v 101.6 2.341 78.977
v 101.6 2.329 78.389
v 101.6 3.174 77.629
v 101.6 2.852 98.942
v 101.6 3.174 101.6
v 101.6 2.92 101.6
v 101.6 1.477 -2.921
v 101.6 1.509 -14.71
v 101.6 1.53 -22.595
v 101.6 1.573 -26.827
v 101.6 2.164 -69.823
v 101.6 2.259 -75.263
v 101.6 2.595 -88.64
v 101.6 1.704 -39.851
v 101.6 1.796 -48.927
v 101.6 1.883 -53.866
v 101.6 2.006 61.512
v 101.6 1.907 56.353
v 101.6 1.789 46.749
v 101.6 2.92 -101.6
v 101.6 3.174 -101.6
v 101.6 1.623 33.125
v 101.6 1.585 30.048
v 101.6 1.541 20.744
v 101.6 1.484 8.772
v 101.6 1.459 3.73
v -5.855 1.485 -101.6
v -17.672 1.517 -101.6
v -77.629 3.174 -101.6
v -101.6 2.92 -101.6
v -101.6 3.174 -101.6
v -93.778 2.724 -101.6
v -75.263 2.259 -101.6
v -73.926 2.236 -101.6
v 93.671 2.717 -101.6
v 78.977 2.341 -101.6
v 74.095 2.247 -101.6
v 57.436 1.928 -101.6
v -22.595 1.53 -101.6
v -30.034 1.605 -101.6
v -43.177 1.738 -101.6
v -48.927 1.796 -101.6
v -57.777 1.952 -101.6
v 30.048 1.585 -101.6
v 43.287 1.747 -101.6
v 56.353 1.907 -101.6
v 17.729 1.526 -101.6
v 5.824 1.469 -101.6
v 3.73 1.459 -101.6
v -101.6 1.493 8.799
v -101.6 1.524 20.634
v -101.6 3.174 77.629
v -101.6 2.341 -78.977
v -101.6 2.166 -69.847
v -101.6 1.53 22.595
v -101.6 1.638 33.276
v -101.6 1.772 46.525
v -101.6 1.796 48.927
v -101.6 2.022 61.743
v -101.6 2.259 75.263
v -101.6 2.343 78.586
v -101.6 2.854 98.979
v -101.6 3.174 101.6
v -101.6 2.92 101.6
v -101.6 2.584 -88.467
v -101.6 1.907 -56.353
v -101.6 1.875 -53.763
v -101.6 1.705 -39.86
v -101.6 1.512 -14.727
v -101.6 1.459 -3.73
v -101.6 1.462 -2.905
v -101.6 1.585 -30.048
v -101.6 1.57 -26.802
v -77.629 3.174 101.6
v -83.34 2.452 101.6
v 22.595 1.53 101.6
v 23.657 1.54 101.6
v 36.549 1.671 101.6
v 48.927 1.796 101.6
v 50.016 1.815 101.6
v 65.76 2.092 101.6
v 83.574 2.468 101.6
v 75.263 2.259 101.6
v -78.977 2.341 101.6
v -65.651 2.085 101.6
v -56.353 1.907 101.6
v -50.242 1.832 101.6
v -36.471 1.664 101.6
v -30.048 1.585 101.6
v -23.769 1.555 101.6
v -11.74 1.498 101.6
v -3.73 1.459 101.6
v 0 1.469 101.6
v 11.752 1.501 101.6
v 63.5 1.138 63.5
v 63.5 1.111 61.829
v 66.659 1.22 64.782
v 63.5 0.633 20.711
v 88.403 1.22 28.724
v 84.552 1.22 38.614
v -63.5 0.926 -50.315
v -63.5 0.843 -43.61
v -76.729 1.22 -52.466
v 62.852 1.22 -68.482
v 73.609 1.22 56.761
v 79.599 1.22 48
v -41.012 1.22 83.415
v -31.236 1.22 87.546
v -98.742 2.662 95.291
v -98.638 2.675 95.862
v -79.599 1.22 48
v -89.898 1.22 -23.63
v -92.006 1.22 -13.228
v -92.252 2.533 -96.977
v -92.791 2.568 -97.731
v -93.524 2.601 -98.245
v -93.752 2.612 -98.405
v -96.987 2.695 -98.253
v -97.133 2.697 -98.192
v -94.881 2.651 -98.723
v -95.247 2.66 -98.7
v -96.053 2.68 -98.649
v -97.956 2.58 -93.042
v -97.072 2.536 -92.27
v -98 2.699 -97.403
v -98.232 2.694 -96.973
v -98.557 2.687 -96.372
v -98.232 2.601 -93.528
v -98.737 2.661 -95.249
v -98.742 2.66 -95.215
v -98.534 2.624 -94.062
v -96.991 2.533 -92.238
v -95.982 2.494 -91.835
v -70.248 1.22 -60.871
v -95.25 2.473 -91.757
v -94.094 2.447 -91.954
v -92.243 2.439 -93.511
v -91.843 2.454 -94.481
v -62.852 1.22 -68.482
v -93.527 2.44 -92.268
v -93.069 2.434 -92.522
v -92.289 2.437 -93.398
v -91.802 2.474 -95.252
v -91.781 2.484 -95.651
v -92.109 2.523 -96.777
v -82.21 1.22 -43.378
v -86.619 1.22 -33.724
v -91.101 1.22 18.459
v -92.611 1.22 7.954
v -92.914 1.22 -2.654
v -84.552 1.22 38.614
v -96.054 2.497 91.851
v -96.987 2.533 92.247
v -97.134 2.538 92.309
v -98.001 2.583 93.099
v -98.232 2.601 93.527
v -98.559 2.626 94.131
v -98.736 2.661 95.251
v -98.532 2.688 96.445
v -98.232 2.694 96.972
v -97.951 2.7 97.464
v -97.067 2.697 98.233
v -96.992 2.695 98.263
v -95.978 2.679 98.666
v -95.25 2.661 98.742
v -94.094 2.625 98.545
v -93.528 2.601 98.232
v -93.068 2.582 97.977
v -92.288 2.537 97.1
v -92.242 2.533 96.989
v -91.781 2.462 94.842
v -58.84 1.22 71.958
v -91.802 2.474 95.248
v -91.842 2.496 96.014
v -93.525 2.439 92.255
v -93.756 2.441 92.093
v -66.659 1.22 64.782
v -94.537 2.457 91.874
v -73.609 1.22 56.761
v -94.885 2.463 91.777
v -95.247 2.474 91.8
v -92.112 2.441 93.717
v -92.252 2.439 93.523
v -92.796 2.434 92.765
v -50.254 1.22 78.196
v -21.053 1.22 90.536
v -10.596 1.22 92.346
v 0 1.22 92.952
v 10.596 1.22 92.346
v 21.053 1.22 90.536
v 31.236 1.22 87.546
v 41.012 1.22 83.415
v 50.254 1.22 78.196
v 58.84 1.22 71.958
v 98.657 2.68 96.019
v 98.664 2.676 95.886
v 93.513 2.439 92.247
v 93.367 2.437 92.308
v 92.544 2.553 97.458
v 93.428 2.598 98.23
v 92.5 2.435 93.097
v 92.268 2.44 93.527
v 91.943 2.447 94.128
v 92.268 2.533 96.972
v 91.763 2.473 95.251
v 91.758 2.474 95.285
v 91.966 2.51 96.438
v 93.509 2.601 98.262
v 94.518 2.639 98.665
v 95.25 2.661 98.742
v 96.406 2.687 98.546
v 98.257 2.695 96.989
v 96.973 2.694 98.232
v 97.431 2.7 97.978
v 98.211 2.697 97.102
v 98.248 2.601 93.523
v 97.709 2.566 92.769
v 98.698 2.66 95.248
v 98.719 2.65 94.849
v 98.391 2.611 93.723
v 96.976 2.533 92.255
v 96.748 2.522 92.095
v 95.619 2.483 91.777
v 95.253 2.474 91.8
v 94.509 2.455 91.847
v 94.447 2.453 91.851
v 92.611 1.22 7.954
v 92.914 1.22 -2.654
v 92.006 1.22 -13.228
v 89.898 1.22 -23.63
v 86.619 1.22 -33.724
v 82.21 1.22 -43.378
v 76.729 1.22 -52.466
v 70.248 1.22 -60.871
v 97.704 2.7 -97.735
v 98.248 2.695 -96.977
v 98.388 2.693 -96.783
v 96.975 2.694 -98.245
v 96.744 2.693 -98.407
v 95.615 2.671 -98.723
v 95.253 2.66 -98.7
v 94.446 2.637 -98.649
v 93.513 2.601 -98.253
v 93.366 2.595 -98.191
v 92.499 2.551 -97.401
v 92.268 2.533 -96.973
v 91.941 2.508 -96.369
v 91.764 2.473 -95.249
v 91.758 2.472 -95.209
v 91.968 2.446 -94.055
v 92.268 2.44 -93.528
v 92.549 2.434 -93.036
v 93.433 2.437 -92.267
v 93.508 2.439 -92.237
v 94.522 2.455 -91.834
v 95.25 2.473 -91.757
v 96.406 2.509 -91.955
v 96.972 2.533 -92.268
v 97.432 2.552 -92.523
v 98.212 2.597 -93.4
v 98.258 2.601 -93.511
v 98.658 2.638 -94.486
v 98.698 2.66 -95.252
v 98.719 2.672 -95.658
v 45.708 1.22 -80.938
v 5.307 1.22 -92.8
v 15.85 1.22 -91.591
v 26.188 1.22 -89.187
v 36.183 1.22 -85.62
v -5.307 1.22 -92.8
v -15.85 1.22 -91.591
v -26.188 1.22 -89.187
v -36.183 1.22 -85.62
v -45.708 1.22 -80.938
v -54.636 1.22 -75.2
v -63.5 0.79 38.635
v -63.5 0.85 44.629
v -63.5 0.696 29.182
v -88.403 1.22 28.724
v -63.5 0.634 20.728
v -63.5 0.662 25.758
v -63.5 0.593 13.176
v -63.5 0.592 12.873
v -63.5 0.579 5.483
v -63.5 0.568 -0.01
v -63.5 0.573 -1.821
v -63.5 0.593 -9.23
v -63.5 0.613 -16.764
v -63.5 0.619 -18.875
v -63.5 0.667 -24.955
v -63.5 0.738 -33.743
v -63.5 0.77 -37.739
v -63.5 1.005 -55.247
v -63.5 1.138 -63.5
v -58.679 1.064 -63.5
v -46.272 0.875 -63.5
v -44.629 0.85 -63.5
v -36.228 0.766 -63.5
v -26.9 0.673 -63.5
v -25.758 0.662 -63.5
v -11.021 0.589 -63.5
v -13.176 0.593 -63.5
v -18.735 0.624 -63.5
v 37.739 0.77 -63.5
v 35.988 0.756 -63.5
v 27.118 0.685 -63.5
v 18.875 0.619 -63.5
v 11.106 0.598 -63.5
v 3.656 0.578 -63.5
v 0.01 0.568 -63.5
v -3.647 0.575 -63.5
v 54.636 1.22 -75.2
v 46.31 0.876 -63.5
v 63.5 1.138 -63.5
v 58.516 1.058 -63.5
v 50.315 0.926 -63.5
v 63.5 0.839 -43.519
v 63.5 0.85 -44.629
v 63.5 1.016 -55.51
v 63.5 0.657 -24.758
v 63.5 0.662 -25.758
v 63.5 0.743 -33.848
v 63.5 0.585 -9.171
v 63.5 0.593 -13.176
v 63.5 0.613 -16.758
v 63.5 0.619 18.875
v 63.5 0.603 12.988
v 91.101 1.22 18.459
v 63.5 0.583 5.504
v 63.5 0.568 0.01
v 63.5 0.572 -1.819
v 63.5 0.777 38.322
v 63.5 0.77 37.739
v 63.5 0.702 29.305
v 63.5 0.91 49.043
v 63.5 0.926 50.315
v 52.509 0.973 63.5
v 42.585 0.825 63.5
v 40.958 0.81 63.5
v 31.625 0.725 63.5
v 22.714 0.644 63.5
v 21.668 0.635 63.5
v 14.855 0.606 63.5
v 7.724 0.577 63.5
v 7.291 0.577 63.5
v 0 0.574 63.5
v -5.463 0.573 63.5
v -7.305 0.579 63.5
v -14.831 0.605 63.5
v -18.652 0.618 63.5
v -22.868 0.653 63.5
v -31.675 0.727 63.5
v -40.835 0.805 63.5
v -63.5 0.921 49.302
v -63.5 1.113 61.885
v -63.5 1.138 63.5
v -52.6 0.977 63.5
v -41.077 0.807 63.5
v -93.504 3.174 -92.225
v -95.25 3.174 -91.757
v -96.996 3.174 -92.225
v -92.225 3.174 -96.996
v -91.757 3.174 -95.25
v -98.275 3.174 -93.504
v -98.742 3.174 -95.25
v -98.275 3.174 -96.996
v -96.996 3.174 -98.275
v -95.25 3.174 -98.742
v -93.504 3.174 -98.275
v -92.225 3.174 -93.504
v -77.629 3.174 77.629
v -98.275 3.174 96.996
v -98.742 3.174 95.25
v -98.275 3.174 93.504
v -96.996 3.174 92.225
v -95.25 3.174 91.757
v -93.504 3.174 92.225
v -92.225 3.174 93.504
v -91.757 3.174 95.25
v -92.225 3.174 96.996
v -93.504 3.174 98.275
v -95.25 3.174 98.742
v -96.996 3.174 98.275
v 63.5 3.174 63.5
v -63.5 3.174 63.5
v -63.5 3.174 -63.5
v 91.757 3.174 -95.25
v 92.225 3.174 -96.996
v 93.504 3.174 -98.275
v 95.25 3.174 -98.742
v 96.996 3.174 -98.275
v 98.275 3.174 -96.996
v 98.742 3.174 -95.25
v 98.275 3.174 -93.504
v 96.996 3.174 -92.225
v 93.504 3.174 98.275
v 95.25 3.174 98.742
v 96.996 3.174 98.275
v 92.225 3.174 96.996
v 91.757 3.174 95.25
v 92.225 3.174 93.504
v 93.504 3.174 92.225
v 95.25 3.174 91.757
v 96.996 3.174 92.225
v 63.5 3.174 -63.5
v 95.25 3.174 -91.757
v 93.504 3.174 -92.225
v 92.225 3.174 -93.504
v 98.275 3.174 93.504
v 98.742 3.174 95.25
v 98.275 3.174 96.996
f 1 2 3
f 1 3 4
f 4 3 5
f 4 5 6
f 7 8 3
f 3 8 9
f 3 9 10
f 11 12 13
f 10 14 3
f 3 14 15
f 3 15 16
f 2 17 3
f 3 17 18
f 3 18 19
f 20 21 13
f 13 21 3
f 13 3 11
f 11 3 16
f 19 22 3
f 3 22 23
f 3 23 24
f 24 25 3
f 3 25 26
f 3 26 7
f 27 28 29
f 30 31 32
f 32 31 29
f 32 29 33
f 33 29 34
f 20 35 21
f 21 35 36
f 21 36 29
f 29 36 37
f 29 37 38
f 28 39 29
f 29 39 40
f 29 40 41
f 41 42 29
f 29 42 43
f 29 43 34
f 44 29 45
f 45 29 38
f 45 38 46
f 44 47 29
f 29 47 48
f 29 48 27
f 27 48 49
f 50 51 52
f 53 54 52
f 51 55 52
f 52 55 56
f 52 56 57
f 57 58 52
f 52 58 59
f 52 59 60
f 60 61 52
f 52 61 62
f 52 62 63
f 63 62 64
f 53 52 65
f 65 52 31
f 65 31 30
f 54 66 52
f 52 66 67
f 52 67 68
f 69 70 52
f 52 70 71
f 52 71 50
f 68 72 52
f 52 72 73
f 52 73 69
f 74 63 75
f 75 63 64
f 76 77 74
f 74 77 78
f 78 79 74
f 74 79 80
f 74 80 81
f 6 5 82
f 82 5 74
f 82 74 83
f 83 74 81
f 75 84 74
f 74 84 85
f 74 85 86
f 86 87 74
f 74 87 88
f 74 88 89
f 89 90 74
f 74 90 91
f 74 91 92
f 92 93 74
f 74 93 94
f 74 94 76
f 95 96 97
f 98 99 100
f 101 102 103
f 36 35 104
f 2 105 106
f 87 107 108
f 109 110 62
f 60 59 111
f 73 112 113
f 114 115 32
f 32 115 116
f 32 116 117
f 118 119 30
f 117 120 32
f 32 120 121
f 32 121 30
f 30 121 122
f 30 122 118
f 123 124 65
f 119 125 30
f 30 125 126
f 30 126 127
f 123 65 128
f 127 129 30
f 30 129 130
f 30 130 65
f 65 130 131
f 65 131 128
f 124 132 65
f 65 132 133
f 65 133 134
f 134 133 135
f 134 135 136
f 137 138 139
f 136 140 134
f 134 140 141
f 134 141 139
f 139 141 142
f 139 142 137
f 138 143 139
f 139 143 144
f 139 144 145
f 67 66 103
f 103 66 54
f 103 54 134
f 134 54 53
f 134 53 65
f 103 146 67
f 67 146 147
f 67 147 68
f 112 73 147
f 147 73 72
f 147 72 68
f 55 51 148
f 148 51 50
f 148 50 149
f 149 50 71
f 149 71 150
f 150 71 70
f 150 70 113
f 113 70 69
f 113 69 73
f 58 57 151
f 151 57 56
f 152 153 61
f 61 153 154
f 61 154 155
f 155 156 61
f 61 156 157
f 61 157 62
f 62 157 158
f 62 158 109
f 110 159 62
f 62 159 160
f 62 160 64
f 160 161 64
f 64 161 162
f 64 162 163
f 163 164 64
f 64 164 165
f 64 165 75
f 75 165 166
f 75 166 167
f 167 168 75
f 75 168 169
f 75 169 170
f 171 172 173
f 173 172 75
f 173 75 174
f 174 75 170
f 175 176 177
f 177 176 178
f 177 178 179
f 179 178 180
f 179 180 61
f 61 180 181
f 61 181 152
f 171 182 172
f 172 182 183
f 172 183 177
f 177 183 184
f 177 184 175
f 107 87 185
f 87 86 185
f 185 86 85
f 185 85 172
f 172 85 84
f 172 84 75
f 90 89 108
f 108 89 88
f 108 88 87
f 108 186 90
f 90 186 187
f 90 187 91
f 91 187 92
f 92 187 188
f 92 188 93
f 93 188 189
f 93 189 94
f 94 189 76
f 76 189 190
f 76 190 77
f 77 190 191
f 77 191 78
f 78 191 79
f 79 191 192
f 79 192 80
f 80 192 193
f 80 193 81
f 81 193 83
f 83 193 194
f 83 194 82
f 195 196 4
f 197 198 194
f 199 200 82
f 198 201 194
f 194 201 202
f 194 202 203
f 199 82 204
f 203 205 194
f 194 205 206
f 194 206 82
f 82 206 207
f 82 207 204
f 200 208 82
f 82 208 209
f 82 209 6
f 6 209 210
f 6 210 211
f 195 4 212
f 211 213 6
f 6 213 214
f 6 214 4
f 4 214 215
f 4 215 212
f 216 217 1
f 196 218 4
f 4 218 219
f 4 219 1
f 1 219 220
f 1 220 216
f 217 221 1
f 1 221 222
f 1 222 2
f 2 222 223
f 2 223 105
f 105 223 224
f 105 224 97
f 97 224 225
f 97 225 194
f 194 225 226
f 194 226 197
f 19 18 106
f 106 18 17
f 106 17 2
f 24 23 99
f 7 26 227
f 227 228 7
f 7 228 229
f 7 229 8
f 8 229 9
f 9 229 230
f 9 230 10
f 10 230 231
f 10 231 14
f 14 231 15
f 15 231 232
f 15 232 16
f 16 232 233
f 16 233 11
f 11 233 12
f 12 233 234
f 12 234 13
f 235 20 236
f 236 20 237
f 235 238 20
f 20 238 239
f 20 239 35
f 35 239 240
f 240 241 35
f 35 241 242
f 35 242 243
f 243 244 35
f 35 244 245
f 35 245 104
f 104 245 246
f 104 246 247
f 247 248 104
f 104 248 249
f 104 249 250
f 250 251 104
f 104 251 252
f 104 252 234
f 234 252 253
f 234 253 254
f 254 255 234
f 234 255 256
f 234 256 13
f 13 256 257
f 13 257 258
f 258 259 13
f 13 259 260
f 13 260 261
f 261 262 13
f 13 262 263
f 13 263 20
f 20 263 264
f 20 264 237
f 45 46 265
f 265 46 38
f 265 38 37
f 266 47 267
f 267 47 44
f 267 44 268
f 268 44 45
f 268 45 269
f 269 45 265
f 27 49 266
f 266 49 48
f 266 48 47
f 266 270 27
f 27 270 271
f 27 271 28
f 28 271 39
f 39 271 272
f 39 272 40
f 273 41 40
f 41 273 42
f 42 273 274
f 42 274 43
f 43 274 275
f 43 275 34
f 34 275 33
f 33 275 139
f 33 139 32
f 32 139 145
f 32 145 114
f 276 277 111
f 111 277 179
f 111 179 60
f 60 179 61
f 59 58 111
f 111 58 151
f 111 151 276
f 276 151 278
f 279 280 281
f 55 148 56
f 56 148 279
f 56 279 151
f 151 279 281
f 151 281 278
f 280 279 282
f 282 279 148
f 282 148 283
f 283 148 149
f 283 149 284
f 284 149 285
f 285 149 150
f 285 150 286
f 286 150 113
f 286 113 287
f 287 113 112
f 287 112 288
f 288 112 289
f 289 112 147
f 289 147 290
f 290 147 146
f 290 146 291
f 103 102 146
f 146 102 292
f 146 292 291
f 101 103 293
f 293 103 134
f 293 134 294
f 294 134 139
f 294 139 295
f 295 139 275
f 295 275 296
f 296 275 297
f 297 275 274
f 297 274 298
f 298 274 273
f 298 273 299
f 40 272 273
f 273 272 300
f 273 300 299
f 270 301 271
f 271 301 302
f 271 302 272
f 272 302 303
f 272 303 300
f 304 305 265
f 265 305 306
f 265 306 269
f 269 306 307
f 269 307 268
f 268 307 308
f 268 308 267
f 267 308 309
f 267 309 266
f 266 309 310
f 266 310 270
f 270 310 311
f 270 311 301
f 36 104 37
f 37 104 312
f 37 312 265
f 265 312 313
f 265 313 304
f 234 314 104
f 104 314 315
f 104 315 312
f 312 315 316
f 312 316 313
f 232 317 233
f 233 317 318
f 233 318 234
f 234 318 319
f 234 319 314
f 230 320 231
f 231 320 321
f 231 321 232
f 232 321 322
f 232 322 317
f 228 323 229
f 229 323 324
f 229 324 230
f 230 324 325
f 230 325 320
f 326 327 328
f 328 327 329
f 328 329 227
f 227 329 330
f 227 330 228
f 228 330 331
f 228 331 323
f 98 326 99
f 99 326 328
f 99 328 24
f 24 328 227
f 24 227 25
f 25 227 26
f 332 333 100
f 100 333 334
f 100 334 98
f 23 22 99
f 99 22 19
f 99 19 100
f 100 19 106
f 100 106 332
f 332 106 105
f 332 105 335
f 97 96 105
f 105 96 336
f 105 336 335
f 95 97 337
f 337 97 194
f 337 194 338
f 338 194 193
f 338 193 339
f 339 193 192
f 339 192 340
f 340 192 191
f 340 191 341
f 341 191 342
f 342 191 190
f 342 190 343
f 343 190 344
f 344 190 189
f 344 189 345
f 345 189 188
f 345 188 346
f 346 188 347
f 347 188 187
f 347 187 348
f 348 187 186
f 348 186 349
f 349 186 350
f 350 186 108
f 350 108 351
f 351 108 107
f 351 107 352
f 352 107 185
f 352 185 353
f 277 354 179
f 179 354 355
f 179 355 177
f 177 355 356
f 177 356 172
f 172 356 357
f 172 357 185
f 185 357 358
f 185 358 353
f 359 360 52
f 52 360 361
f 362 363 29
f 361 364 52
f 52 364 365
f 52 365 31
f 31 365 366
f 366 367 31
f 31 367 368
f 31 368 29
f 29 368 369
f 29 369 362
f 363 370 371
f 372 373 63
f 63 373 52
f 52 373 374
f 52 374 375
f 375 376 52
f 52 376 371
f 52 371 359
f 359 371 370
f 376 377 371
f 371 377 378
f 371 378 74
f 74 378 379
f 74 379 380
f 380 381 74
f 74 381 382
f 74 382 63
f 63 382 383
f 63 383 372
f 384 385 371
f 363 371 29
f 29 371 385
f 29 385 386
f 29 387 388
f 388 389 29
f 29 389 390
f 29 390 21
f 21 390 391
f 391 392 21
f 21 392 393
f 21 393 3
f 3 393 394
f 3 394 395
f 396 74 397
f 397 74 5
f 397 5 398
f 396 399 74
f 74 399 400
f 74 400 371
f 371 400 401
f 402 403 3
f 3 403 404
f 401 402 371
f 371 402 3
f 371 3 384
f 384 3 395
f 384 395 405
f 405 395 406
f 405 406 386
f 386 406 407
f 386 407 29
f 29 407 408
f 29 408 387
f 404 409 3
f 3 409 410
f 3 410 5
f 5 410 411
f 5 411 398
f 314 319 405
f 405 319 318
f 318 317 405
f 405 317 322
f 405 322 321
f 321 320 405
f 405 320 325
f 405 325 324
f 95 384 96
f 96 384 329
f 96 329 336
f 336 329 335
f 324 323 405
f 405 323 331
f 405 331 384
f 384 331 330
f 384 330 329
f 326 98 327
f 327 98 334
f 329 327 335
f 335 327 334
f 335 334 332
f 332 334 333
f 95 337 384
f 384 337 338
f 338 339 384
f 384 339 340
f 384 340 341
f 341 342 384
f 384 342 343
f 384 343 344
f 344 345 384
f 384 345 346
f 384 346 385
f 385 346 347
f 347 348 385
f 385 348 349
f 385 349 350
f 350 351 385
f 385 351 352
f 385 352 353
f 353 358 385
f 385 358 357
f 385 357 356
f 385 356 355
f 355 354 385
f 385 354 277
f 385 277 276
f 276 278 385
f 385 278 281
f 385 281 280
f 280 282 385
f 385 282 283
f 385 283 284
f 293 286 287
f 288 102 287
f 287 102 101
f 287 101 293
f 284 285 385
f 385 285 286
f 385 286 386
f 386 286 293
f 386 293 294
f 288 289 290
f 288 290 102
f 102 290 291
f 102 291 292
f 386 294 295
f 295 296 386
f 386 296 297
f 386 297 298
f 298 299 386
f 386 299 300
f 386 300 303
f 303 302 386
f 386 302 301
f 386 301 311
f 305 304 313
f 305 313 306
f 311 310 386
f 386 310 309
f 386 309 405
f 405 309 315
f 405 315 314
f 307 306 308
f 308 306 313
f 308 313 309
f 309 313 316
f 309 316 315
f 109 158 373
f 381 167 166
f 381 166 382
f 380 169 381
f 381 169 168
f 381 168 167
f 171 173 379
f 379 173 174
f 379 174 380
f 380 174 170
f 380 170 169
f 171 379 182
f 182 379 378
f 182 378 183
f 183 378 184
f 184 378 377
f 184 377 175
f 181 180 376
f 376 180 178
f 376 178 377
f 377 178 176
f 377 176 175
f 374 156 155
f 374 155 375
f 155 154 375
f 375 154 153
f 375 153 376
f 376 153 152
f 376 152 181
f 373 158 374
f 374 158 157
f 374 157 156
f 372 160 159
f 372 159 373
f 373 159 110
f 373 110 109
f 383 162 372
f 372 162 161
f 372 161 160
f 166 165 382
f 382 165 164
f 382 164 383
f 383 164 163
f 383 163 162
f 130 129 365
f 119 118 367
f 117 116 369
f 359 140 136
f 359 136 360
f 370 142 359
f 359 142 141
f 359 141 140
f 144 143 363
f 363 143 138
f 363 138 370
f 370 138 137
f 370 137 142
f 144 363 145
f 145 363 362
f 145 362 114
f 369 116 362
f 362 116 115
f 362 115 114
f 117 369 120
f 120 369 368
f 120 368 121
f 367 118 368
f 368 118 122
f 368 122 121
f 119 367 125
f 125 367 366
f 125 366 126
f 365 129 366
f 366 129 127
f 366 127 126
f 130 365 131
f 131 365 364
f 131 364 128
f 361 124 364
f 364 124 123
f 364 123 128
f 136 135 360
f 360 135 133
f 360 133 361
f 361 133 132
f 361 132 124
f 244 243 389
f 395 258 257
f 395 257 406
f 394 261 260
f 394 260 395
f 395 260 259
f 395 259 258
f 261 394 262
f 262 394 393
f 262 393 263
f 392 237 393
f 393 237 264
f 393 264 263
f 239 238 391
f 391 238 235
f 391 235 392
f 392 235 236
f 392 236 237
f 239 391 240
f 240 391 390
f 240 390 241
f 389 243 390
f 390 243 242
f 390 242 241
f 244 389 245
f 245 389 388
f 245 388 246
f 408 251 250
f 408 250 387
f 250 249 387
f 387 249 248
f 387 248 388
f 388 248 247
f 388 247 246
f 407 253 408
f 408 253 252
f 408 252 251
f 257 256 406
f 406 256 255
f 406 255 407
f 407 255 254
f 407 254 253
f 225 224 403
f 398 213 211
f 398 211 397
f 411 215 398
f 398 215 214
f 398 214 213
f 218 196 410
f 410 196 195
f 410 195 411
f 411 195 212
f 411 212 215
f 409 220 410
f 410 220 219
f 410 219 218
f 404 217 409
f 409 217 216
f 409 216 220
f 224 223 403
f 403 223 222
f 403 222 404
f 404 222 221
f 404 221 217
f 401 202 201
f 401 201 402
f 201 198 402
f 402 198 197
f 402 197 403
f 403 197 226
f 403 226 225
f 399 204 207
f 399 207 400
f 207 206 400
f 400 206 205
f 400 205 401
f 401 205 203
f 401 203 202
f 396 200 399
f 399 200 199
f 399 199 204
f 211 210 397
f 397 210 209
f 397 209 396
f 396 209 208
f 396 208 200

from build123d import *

# Parameters (mm, degrees)
SKETCH1_OUTSIDE_W   = 3521.15
SKETCH1_OUTSIDE_H   = 3521.15
SKETCH1_OUTSIDE_W_2 = 203.2
SKETCH1_OUTSIDE_H_2 = 203.2
CUT_EXTRUDE1_DEPTH  = 2190.743594482
CUT_EXTRUDE2_START  = 3.175
SKETCH5_W           = 234.523944536
SKETCH5_H           = 253.300586876
CUT_EXTRUDE2_DEPTH  = 1052.463791587
SKETCH6_R           = 3.4925
SKETCH6_W           = 127
SKETCH6_H           = 127
CUT_EXTRUDE3_DEPTH  = 144.719172925


with BuildPart() as part:
    # Sketch3 → Revolve1 (revolve)
    with BuildSketch(Plane(origin=(0, 0, 0), x_dir=(0, 0, -1), z_dir=(1, 0, 0))):
        with BuildLine():
            Line((0, 0), (0, 1044.805178237))
            add(Edge.make_bspline(
                [(0, 1044.805178237), (-1360.764334547, 1044.805178237), (-1360.764334547, 522.402589118), (-1360.764334547, 0), (0, 0)],
                knots=[1.570796327, 1.570796327, 1.570796327, 3.141592654, 3.141592654, 4.71238898, 4.71238898, 4.71238898], degree=2, weights=[1, 0.707106781, 1, 0.707106781, 1]))
        make_face()
    revolve(axis=Axis((0, 0, 0), (0, 1, 0)))

    # Sketch1 outside → Cut-Extrude1 (cut, through all)
    with BuildSketch(Plane(origin=(0, 0, 0), x_dir=(1, 0, 0), z_dir=(0, 1, 0))):
        Rectangle(SKETCH1_OUTSIDE_W, SKETCH1_OUTSIDE_H)
        Rectangle(SKETCH1_OUTSIDE_W_2, SKETCH1_OUTSIDE_H_2, mode=Mode.SUBTRACT)
    extrude(amount=CUT_EXTRUDE1_DEPTH, mode=Mode.SUBTRACT)

    # Sketch5 → Cut-Extrude2 (cut, through all)
    with BuildSketch(Plane(origin=(0, 0, 0), x_dir=(1, 0, 0), z_dir=(0, 1, 0)).offset(CUT_EXTRUDE2_START)):
        Rectangle(SKETCH5_W, SKETCH5_H)
    extrude(amount=CUT_EXTRUDE2_DEPTH, mode=Mode.SUBTRACT)

    # Sketch6 → Cut-Extrude3 (cut, through all)
    with BuildSketch(Plane(origin=(0, 3.175, 0), x_dir=(1, 0, 0), z_dir=(0, 1, 0))):
        with Locations(Location((-95.25, -95.25, 0), (0, 0, 270))):
            Circle(SKETCH6_R)
        with Locations(Location((-95.25, 95.25, 0), (0, 0, 270))):
            Circle(SKETCH6_R)
        with Locations(Location((95.25, 95.25, 0), (0, 0, 270))):
            Circle(SKETCH6_R)
        with Locations(Location((95.25, -95.25, 0), (0, 0, 270))):
            Circle(SKETCH6_R)
        Rectangle(SKETCH6_W, SKETCH6_H)
    extrude(amount=-CUT_EXTRUDE3_DEPTH, mode=Mode.SUBTRACT)


solid = part.part
